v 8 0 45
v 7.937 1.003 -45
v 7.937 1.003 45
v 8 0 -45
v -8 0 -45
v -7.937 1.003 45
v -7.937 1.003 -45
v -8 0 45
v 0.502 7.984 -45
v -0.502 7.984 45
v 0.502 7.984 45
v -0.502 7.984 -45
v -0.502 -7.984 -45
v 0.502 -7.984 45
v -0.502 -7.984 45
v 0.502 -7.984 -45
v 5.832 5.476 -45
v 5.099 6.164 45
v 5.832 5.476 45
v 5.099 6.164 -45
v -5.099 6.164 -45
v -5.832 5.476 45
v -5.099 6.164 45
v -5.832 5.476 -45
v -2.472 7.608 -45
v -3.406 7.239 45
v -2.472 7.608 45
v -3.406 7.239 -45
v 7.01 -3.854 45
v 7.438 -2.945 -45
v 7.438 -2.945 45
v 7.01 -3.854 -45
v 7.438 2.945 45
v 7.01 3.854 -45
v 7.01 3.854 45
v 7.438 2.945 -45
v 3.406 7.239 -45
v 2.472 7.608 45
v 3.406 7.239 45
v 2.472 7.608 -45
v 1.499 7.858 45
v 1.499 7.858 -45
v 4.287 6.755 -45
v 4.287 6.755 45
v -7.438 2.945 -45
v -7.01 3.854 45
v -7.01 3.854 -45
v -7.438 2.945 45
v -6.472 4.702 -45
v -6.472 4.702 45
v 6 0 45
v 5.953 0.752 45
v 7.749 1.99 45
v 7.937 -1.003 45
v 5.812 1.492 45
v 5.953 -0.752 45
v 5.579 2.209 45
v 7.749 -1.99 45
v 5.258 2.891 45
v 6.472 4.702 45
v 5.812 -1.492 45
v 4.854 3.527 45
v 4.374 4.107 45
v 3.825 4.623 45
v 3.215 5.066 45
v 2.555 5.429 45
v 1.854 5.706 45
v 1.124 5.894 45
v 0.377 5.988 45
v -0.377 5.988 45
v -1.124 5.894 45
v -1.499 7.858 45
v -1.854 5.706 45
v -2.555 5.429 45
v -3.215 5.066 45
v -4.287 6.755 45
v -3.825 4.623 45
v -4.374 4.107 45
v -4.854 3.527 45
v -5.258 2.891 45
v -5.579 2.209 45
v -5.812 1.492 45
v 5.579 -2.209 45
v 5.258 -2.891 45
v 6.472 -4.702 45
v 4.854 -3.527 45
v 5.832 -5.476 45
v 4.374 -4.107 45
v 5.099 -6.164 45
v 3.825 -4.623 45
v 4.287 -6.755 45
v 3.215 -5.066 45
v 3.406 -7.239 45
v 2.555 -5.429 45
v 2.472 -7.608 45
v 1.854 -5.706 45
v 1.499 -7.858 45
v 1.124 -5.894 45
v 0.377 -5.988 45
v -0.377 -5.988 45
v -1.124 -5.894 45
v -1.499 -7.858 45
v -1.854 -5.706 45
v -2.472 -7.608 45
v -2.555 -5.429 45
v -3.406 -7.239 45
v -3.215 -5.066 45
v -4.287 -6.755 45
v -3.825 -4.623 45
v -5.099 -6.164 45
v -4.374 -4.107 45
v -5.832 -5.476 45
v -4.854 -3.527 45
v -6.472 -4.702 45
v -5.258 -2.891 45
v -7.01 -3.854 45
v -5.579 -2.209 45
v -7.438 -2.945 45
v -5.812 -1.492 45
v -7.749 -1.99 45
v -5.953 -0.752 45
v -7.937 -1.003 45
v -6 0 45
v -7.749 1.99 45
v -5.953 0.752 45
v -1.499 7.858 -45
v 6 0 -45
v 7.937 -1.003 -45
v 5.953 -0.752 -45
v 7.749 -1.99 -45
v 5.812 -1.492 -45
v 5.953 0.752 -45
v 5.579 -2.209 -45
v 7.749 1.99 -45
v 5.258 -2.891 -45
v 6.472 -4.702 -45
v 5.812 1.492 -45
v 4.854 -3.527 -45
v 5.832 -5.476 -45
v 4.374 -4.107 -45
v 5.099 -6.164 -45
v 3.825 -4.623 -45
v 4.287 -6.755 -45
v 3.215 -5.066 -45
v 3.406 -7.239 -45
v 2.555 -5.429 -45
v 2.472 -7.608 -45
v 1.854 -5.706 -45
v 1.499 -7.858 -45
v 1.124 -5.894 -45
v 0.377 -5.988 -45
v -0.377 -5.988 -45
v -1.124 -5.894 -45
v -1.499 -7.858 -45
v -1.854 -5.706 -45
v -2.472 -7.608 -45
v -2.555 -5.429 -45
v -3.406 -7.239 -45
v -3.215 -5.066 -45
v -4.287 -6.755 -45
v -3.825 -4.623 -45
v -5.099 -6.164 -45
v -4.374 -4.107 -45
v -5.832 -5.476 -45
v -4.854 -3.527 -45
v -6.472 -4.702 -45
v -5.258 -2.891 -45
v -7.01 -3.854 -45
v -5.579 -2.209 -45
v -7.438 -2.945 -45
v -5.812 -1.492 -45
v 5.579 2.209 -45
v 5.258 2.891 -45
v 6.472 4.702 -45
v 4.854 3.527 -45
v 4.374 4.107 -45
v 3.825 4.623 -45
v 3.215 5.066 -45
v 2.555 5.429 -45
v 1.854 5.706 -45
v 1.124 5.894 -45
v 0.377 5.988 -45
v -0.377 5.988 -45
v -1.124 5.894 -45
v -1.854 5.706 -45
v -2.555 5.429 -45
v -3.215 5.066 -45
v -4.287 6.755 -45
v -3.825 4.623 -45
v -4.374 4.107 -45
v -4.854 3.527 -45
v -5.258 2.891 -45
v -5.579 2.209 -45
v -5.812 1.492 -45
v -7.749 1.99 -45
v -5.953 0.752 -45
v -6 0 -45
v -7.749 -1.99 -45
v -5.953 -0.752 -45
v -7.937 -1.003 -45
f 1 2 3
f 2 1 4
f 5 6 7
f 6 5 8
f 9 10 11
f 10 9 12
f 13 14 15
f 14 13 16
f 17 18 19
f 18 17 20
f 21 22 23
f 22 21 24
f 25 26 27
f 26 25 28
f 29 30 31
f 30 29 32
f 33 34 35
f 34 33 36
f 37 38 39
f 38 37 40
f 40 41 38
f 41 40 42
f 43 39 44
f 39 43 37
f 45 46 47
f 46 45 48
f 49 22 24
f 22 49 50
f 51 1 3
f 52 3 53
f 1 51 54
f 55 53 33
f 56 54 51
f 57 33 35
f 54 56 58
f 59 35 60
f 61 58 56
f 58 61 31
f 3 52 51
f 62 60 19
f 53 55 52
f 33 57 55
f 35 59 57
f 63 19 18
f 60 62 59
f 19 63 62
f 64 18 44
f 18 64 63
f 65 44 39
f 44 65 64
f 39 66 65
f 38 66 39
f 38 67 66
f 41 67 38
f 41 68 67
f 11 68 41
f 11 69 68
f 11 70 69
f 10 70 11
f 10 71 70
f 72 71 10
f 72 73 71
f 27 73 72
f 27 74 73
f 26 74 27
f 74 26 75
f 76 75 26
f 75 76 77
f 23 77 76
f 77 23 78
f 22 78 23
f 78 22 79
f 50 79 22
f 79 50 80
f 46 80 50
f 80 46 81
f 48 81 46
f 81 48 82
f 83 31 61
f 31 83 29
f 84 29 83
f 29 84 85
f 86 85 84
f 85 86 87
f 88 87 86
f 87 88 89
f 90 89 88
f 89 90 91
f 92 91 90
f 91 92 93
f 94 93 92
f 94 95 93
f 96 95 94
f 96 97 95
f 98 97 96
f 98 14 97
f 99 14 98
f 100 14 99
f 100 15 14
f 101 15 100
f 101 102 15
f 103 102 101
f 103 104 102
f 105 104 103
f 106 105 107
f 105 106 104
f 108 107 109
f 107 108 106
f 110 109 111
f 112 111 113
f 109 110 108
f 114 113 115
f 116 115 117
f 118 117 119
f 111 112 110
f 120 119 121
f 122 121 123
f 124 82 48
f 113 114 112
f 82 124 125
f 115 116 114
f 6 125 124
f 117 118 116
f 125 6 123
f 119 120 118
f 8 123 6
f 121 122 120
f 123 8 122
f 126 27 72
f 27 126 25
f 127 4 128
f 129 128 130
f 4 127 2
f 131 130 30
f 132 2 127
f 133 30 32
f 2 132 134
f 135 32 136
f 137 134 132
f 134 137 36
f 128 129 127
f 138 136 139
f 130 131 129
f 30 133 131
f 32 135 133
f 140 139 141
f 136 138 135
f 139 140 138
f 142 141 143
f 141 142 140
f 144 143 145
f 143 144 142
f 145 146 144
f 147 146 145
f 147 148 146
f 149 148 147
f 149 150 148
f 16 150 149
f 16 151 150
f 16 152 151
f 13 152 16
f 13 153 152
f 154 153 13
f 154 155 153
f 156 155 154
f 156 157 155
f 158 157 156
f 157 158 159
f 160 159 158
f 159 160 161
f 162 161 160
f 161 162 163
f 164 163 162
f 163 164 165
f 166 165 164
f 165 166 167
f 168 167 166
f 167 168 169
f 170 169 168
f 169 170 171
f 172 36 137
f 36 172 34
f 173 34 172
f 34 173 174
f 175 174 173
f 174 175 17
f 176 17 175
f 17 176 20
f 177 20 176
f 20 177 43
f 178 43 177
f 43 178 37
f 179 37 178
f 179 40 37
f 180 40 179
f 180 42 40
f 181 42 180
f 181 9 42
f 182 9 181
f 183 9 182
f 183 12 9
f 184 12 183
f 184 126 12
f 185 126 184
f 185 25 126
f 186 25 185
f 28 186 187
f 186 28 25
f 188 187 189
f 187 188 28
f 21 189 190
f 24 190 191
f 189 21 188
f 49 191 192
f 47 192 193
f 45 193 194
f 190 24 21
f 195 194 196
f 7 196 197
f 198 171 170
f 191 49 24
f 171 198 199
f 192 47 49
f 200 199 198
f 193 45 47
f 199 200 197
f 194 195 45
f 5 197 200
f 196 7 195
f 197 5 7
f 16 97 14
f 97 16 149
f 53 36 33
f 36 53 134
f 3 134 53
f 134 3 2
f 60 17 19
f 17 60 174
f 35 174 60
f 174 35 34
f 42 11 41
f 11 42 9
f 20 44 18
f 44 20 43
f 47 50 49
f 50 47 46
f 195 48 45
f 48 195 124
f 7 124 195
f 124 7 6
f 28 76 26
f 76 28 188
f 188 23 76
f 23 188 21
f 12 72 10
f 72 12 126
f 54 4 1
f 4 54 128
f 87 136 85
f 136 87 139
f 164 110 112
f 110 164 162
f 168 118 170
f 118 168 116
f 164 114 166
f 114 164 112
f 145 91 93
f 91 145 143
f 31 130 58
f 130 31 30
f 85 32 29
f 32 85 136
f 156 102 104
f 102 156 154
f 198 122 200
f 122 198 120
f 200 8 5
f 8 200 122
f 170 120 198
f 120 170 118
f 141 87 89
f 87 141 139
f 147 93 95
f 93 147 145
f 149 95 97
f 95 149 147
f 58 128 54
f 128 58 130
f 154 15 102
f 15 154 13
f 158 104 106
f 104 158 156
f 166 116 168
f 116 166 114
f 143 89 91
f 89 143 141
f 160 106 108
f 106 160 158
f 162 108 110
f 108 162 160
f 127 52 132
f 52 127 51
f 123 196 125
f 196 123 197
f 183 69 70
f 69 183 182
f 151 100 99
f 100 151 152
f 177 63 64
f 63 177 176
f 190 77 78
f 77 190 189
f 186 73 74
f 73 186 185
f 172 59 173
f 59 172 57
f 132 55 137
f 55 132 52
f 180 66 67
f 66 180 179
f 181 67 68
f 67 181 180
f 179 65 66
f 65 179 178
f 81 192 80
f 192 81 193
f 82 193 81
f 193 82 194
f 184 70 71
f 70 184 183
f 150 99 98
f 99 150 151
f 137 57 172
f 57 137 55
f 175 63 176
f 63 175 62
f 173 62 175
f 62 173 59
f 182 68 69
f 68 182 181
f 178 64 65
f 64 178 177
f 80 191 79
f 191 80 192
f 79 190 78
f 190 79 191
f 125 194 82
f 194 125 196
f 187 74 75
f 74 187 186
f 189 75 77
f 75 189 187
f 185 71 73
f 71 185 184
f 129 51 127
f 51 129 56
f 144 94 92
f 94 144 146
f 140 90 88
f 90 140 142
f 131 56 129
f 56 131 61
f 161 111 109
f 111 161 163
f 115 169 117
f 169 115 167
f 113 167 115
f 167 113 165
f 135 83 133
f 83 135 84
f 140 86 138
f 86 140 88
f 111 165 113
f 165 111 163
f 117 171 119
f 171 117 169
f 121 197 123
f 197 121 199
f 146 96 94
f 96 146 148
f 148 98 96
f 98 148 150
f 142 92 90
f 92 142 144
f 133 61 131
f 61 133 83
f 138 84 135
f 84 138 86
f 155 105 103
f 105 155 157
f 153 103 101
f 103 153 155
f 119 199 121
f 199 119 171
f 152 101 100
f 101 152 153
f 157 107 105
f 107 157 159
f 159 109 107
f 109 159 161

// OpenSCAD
$fn = 50;


difference() {
	union() {
		translate(v = [0, 0, -45.0000000000]) {
			cylinder(h = 90, r = 8.0000000000);
		}
	}
	union() {
		translate(v = [0, 0, -100.0000000000]) {
			cylinder(h = 200, r = 6);
		}
	}
}
